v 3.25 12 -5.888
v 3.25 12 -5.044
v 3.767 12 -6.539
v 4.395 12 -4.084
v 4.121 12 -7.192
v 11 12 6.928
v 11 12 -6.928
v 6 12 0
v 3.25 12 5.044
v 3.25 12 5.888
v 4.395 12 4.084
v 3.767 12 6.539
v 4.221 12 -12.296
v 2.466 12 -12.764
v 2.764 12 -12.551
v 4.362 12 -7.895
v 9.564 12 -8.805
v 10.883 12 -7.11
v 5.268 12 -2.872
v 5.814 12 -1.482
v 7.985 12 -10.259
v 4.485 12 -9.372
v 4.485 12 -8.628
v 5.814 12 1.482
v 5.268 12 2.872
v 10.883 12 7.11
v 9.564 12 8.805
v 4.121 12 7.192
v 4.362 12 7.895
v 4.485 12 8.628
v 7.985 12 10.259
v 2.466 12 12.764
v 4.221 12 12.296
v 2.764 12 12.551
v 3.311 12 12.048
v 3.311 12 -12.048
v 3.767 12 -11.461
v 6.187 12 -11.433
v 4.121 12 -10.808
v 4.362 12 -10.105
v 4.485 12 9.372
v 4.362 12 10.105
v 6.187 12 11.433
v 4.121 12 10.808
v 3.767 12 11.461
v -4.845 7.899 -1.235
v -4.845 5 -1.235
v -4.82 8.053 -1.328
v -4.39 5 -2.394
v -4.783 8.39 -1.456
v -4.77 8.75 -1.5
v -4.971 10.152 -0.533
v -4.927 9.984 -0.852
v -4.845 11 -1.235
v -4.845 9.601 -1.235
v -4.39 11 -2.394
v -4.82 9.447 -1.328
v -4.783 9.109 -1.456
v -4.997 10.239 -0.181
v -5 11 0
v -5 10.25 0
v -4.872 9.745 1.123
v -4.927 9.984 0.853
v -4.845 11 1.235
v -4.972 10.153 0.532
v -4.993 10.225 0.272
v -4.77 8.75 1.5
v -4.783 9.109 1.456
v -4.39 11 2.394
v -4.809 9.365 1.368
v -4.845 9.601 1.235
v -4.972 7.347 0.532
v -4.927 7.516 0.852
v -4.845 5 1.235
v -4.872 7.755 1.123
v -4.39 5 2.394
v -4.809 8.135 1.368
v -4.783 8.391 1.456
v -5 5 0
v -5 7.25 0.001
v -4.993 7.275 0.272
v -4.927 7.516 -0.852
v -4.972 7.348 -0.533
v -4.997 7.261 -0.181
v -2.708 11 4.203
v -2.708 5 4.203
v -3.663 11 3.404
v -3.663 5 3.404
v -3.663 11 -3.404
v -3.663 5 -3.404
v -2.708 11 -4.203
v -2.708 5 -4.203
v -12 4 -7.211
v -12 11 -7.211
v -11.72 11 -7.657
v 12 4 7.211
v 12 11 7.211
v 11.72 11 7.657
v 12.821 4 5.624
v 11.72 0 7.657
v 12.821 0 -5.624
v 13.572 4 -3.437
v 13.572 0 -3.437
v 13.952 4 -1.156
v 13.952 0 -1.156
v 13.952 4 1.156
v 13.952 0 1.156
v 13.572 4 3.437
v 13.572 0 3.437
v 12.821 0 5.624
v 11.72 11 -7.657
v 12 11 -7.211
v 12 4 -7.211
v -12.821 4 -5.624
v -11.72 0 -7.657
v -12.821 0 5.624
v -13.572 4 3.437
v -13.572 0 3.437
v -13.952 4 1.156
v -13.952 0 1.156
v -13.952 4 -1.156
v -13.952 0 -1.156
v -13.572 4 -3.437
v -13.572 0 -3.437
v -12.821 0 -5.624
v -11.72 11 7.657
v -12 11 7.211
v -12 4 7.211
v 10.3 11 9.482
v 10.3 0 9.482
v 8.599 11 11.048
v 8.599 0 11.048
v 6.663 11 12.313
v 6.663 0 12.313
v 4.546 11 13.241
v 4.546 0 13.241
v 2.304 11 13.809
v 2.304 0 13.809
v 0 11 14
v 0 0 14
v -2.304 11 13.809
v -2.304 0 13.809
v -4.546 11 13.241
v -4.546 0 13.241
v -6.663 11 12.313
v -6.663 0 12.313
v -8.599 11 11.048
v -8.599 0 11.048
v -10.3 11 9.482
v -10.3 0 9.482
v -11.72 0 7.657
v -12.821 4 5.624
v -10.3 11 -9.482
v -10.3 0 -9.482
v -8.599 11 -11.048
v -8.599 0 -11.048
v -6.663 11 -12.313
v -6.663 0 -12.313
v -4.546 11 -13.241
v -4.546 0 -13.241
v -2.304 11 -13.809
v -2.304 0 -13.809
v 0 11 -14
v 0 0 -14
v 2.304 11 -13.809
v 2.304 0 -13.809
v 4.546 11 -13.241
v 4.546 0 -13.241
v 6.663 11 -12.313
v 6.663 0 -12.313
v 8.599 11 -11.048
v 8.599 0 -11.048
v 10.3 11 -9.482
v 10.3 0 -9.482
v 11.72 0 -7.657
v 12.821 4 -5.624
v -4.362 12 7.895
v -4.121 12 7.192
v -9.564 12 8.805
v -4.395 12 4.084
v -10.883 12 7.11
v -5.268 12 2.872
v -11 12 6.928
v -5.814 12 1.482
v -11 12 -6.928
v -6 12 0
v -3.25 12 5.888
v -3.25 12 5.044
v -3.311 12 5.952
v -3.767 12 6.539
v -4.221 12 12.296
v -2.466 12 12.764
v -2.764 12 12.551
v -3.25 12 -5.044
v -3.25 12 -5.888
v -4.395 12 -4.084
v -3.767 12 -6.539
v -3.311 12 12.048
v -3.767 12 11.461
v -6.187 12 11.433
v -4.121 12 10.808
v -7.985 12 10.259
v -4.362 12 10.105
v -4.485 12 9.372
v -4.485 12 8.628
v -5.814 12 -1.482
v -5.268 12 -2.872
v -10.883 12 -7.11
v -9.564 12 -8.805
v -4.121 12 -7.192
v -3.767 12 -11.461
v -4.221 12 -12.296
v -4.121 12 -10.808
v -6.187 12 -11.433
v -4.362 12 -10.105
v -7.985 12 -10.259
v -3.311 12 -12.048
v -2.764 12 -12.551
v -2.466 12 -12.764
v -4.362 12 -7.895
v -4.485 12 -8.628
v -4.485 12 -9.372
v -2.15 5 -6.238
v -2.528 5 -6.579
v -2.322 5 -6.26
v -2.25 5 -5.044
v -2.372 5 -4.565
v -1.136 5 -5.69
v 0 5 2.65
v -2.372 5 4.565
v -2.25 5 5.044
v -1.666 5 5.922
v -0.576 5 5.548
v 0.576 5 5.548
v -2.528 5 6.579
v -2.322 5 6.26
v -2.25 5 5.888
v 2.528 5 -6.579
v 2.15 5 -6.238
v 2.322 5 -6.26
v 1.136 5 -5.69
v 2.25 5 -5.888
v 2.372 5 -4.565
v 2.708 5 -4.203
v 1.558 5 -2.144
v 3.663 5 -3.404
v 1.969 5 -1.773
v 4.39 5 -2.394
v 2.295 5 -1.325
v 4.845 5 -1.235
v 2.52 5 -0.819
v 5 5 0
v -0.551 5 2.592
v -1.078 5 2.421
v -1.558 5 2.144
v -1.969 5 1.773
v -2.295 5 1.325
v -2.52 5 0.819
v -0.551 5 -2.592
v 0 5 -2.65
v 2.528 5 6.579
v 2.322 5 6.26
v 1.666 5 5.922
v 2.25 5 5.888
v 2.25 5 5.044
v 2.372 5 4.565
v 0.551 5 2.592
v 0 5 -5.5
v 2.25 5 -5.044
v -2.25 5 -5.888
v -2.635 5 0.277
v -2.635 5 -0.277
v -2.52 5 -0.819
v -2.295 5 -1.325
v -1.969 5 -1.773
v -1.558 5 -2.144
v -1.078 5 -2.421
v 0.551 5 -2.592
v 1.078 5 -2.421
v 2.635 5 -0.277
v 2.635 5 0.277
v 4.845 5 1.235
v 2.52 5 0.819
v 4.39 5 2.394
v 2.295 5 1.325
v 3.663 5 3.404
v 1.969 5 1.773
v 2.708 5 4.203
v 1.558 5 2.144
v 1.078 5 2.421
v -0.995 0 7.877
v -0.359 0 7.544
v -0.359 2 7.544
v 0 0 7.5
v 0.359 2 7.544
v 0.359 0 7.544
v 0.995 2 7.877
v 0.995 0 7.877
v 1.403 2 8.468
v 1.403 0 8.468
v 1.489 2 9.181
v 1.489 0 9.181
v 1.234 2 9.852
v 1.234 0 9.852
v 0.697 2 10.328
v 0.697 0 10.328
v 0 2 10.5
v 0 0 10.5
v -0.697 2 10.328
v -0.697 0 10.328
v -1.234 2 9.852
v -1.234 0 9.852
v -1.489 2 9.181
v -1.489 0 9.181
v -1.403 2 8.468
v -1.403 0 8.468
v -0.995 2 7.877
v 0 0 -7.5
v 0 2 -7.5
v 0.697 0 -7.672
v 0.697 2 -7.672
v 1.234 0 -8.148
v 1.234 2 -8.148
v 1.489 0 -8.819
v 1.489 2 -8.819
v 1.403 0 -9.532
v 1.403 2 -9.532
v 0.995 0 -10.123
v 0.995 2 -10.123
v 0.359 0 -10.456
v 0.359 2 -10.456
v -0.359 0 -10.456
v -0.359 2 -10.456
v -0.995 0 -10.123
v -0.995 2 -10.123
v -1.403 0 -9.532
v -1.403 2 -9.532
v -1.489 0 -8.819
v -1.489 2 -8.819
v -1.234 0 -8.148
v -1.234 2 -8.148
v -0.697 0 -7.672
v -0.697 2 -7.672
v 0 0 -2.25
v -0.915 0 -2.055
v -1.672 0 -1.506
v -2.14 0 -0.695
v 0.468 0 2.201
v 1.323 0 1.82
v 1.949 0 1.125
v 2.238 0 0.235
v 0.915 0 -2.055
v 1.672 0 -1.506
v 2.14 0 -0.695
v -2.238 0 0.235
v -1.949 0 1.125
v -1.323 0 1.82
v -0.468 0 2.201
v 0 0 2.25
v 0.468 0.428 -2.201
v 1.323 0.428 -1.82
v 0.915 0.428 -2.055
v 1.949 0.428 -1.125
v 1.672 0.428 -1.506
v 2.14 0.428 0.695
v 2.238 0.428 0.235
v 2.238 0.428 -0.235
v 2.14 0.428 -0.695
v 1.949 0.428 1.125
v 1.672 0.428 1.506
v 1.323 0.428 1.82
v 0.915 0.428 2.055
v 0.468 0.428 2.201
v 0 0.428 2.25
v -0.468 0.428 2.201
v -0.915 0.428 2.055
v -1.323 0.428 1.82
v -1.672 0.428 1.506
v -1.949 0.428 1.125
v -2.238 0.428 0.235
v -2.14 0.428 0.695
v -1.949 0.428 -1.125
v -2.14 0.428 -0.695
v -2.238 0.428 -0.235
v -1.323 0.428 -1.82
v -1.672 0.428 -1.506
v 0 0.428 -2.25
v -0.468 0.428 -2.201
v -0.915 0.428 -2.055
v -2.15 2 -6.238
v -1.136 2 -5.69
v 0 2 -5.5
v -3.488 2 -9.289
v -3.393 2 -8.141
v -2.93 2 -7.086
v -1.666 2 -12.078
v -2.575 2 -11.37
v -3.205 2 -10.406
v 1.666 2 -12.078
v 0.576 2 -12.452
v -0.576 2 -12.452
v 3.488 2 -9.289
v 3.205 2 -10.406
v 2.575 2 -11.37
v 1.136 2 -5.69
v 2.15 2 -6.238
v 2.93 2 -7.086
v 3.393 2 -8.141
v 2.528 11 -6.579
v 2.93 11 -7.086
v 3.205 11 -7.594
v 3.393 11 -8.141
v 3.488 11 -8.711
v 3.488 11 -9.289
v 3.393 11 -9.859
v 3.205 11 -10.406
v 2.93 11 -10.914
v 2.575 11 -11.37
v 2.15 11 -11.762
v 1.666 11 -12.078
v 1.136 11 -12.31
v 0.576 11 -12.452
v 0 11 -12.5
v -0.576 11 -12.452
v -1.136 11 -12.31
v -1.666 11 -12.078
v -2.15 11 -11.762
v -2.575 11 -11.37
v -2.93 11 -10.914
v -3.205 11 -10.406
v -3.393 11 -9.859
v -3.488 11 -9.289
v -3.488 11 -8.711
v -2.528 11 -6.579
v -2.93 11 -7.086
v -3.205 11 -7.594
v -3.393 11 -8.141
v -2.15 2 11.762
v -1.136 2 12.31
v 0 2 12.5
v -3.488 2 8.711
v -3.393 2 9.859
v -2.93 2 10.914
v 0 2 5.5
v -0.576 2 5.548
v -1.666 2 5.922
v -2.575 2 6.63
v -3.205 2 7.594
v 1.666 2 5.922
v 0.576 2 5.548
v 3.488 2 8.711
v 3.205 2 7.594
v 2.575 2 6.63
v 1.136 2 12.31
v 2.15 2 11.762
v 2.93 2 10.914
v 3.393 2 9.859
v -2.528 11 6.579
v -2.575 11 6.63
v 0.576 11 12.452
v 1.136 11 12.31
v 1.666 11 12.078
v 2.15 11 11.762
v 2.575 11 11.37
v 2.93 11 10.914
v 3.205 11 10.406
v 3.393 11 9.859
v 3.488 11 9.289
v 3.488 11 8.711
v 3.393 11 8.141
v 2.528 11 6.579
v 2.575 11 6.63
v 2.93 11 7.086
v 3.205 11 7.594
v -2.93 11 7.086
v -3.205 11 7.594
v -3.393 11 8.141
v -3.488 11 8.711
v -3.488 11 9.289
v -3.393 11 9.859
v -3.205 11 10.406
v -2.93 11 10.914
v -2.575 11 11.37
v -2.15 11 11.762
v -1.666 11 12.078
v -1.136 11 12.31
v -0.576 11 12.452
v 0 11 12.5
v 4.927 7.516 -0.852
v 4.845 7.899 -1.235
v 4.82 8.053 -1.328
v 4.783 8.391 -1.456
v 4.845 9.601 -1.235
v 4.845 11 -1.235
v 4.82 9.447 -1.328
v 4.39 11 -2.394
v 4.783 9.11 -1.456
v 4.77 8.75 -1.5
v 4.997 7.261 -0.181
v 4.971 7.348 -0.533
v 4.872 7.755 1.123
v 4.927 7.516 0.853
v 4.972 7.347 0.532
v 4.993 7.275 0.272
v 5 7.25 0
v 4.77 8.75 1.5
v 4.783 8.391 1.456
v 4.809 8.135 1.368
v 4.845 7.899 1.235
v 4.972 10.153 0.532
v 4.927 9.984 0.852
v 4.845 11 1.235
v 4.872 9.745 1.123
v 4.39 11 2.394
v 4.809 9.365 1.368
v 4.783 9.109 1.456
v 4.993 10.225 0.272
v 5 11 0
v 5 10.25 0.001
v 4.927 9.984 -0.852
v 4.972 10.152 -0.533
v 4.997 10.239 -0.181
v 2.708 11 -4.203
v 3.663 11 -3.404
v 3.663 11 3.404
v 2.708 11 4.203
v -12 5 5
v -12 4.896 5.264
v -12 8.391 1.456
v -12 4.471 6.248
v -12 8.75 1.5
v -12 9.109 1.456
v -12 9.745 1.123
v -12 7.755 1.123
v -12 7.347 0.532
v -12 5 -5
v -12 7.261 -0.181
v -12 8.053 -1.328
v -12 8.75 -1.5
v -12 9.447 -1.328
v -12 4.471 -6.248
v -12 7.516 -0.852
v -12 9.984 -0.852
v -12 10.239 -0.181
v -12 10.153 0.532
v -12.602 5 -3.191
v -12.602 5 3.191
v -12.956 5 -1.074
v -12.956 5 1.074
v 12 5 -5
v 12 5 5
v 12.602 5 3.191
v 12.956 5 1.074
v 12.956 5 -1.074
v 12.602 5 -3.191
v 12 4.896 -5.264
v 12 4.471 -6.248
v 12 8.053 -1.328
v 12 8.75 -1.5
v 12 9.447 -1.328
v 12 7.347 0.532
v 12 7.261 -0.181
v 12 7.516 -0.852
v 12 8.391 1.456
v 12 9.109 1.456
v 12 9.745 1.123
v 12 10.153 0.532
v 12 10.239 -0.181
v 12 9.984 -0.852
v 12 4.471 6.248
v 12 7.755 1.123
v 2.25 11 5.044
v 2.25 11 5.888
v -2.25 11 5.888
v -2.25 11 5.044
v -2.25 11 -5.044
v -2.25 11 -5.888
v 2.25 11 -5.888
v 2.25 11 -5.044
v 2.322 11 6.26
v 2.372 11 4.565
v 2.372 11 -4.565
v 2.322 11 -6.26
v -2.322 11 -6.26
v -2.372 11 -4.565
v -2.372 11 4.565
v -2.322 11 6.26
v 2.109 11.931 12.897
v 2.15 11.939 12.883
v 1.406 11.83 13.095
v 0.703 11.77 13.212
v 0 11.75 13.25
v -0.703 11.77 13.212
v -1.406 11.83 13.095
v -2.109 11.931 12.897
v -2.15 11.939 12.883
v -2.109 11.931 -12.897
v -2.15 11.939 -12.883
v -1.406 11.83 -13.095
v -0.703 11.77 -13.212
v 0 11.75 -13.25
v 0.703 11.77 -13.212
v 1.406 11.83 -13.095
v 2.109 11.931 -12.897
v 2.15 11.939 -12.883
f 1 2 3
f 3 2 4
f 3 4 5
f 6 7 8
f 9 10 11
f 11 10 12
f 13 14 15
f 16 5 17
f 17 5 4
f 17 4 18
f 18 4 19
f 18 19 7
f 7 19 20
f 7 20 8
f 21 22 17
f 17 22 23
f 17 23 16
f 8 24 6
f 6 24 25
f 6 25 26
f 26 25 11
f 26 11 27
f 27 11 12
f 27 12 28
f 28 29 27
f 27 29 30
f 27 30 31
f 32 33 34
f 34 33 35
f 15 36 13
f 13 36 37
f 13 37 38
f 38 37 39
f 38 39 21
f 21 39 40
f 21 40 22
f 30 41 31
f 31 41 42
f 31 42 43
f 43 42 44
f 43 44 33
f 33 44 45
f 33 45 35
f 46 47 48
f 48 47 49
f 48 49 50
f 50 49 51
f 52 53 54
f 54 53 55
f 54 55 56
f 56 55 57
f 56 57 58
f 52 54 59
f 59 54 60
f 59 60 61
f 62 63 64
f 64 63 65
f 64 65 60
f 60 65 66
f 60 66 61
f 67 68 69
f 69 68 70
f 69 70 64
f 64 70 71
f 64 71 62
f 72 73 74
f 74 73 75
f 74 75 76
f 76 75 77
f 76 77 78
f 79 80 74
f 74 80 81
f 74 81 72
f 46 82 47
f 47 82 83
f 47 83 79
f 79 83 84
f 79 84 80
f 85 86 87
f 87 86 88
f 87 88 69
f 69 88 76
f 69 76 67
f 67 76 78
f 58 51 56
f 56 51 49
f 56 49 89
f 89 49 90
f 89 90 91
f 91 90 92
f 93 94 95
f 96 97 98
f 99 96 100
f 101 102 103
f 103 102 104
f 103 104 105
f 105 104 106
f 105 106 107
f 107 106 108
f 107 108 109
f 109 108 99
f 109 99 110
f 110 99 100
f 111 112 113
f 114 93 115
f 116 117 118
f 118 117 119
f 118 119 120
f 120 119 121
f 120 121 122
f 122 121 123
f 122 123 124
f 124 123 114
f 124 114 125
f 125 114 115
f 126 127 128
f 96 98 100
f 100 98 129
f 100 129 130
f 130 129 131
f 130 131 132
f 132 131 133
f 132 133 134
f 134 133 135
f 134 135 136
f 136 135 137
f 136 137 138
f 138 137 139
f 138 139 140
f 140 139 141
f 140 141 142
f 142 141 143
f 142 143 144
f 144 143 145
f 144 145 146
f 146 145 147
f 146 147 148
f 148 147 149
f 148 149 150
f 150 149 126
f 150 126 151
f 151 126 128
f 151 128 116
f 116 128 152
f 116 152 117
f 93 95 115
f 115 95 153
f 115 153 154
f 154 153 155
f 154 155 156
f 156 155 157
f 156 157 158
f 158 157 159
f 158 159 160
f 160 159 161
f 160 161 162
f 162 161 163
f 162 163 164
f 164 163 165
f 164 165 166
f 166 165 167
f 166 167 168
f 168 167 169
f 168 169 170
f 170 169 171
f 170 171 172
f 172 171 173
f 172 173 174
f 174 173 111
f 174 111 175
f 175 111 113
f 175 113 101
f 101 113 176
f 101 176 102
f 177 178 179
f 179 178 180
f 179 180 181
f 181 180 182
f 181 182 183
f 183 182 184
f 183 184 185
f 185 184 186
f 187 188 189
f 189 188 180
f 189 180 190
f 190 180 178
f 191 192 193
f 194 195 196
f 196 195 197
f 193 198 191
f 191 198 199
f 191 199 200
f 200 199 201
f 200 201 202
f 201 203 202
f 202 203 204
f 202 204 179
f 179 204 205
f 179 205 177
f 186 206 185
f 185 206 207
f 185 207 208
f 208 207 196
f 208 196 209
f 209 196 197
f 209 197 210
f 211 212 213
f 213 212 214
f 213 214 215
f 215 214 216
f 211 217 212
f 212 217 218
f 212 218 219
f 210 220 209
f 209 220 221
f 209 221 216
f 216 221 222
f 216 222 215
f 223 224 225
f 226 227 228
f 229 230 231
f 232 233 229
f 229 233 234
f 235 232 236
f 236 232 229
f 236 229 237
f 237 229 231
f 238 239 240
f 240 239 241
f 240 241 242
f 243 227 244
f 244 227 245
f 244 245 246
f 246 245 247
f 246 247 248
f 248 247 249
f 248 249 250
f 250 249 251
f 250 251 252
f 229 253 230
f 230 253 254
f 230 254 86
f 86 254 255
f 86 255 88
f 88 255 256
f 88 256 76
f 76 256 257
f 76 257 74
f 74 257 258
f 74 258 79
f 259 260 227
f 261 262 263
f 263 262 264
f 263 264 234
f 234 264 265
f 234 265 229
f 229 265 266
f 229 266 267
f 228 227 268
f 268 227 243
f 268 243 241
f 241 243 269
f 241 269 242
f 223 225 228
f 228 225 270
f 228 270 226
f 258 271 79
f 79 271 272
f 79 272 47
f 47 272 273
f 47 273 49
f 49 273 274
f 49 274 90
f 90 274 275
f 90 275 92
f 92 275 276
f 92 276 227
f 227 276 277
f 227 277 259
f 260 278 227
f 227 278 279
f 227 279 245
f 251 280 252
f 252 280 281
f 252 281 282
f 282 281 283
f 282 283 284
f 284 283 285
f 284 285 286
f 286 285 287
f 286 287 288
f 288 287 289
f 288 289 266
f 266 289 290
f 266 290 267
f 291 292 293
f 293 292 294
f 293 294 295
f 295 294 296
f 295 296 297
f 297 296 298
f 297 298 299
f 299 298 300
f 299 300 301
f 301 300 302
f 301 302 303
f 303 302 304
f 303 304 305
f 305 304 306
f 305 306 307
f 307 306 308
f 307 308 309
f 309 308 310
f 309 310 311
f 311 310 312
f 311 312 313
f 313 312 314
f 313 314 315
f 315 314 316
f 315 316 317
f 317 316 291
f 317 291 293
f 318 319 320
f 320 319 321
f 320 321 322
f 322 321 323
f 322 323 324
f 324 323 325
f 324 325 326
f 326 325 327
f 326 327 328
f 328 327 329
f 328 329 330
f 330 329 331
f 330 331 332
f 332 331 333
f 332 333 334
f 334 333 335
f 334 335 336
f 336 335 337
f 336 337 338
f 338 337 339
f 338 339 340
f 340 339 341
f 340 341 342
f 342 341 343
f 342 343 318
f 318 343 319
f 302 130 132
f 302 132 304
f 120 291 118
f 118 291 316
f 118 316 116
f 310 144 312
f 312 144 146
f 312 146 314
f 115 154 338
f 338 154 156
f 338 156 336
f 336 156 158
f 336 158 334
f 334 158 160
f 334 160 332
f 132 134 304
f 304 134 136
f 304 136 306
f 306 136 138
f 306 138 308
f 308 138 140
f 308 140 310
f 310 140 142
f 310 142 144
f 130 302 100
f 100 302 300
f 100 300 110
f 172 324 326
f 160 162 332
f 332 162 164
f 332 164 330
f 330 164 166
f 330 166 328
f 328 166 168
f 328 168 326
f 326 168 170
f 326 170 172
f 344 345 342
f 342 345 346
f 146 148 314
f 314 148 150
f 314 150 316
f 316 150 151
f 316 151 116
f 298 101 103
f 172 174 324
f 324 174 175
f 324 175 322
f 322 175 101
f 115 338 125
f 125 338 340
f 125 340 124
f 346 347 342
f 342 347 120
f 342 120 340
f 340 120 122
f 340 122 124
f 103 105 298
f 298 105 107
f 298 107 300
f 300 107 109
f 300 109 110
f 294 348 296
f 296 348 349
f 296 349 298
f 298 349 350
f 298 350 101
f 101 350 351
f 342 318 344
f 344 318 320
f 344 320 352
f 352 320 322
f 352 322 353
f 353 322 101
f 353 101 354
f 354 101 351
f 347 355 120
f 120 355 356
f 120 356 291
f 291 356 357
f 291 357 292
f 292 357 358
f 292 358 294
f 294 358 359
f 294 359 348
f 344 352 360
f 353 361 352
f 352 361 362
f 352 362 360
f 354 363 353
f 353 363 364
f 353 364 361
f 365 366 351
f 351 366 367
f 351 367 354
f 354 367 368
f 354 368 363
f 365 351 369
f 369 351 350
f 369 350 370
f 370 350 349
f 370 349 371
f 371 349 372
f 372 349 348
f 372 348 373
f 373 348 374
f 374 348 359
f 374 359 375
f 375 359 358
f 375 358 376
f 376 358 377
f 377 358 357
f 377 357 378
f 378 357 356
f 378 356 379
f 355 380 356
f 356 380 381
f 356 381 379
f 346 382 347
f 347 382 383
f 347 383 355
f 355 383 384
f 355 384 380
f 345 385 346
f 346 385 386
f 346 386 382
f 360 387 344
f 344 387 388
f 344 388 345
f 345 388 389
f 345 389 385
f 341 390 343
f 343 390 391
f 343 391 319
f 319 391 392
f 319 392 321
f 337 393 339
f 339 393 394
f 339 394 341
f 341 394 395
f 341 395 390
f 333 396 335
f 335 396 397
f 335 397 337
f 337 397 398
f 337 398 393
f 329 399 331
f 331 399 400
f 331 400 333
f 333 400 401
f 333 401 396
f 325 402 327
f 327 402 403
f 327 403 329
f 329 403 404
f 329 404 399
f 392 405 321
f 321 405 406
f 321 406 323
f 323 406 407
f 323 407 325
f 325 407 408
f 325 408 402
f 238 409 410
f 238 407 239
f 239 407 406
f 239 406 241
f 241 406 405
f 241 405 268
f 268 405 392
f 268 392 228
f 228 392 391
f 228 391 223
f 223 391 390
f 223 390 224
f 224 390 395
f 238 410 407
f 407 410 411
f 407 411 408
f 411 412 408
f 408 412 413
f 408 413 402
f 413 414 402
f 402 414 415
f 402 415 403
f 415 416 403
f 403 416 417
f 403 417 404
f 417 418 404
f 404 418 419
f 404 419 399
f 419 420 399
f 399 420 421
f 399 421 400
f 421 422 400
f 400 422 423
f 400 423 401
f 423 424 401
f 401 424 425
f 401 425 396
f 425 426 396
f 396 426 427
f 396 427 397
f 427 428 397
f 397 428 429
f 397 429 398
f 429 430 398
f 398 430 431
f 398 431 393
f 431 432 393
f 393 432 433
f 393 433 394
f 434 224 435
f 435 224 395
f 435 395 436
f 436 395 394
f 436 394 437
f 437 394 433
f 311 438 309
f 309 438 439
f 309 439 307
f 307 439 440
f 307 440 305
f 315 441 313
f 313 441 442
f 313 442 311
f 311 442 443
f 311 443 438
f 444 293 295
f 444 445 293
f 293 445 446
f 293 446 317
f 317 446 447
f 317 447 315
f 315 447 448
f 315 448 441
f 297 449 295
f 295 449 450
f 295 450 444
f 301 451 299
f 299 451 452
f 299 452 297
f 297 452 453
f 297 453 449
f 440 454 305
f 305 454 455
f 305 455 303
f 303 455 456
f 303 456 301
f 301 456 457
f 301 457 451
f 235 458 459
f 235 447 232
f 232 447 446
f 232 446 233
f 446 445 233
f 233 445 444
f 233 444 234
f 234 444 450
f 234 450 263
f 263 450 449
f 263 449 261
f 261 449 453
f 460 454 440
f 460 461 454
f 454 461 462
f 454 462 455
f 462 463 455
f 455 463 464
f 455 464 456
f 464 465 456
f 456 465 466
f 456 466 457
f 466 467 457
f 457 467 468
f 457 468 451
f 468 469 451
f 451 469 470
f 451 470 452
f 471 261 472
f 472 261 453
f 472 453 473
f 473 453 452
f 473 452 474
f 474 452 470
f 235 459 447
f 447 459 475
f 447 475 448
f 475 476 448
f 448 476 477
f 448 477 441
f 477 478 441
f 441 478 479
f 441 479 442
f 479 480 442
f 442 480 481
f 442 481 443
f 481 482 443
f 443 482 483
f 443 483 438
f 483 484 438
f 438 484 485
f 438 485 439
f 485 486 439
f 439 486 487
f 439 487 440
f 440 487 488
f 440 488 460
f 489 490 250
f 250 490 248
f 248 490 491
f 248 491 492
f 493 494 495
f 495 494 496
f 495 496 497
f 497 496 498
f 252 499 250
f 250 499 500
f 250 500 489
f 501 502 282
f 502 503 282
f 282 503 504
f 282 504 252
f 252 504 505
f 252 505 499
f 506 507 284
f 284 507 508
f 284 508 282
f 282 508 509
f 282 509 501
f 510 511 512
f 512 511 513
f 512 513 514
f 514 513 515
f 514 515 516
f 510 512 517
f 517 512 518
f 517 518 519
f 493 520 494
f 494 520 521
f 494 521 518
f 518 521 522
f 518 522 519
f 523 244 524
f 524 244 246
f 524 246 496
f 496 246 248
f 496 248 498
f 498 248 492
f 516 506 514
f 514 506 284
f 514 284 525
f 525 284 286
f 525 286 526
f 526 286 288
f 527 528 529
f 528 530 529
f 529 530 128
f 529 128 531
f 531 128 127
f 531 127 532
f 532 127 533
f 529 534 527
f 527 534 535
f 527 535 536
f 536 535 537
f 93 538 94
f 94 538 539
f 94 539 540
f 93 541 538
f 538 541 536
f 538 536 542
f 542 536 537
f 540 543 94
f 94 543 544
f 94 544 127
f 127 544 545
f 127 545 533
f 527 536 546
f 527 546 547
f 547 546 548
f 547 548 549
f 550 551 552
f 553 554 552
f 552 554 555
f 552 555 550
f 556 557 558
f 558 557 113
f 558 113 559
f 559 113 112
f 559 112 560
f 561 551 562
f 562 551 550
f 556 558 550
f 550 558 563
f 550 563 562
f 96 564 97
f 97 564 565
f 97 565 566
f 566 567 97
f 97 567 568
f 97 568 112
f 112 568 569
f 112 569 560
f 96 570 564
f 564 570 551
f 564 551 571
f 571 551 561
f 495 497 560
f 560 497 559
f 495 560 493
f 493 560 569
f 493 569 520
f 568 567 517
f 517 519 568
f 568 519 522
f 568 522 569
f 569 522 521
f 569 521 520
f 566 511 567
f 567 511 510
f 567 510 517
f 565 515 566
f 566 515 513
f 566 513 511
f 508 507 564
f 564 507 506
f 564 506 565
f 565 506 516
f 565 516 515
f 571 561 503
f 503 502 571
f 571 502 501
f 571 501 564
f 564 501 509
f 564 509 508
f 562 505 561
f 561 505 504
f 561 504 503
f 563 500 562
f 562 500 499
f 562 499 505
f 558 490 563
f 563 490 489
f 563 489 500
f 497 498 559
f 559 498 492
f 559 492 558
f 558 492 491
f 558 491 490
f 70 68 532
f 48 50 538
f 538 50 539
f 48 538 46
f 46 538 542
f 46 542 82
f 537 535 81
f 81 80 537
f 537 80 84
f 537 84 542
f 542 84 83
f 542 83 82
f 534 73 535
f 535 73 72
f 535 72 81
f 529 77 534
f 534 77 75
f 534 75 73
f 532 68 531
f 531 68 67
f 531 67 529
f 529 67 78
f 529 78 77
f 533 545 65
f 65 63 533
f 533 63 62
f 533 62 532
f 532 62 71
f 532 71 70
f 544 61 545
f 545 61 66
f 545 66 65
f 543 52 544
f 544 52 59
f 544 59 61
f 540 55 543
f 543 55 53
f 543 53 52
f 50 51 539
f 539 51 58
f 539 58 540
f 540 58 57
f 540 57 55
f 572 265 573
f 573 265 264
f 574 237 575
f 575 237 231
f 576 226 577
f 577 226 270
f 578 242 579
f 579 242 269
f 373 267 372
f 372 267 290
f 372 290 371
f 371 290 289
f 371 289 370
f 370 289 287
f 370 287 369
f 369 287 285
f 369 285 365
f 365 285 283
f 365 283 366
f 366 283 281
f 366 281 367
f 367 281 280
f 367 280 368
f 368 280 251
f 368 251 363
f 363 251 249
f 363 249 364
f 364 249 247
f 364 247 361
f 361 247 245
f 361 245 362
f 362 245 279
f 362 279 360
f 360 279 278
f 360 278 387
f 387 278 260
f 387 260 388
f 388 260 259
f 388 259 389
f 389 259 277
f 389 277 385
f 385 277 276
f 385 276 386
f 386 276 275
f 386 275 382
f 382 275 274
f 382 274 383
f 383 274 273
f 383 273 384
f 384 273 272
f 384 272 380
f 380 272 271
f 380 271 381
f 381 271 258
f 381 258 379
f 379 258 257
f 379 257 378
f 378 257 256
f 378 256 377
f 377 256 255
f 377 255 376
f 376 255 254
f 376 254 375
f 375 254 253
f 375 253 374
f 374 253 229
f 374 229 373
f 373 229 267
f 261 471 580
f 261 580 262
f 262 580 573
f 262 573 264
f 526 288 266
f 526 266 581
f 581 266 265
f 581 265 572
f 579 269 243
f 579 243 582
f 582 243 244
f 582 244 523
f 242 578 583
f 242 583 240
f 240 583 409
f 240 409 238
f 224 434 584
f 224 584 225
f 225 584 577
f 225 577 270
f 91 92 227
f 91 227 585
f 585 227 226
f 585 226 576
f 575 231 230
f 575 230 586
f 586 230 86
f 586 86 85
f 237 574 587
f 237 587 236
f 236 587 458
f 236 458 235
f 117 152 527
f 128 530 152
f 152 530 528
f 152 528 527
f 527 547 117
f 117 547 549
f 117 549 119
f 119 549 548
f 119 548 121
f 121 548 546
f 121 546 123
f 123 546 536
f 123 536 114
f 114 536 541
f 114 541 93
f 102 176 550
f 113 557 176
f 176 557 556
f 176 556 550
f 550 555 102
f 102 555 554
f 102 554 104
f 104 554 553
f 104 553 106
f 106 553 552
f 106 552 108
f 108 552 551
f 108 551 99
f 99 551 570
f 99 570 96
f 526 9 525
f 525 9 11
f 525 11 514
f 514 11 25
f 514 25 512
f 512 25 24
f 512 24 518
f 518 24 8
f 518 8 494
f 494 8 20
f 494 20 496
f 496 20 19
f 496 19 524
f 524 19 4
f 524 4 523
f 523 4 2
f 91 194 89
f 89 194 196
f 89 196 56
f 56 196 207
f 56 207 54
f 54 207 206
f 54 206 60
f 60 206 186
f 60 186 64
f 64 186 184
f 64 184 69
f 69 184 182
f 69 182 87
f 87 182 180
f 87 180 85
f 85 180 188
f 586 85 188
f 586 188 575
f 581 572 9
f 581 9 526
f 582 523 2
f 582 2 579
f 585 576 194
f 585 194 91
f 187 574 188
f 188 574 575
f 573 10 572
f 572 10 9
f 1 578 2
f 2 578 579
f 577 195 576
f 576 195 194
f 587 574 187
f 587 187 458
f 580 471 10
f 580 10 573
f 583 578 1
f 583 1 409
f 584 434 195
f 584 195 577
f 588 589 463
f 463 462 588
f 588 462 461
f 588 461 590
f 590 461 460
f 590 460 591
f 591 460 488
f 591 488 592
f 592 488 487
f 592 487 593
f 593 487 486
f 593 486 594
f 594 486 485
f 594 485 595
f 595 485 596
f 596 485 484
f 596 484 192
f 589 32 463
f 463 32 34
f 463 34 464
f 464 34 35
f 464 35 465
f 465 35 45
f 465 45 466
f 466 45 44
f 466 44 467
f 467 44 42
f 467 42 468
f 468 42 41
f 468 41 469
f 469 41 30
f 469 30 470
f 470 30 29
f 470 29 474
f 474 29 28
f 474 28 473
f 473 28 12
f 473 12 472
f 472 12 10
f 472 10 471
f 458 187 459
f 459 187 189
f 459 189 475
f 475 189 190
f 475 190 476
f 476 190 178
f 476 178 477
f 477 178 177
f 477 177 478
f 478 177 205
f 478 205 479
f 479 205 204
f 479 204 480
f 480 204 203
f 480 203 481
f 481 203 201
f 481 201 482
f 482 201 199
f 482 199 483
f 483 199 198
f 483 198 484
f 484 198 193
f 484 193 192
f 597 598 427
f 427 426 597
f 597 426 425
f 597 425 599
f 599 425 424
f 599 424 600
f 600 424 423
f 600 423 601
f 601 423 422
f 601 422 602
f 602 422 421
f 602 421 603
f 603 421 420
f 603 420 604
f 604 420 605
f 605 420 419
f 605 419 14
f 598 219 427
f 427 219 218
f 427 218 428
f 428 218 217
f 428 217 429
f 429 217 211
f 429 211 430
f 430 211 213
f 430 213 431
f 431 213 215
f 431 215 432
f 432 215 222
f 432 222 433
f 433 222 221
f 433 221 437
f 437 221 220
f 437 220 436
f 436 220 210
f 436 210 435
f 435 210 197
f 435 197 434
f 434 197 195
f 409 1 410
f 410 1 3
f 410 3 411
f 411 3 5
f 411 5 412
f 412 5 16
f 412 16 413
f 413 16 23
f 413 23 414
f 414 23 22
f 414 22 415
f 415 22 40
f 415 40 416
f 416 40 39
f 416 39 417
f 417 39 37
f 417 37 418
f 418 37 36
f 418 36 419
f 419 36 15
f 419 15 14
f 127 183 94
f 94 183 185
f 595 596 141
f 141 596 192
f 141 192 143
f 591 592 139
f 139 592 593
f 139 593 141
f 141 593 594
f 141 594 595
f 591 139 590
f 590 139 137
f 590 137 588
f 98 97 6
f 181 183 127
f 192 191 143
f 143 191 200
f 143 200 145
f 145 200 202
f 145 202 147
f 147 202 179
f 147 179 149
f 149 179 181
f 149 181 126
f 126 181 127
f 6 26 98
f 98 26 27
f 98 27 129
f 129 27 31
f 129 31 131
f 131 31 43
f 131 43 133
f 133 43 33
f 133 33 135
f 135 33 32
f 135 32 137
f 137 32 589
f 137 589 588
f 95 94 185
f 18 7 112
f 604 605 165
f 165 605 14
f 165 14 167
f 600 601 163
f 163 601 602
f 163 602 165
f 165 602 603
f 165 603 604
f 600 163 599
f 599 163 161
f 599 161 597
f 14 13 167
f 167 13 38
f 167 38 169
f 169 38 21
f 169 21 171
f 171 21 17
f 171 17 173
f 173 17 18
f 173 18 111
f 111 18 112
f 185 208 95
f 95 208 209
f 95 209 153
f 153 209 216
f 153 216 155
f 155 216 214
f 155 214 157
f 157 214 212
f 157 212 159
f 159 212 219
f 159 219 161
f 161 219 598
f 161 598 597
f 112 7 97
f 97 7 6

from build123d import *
from build123d.topology import SkipClean

# Parameters (mm, degrees)
SKETCH1_R           = 14
SKETCH1_R_2         = 2.25
BOSS_EXTRUDE1_DEPTH = 5
SKETCH2_R           = 1.5
CUT_EXTRUDE1_DEPTH  = 21.420577857
SKETCH4_R           = 3.5
CUT_EXTRUDE2_DEPTH  = 3
CIRPATTERN1_COUNT   = 2
SKETCH5_R           = 14
SKETCH5_R_2         = 5
BOSS_EXTRUDE2_DEPTH = 7
SKETCH6_R           = 3.5
CUT_EXTRUDE3_DEPTH  = 22
SKETCH9_OUTSIDE_W   = 38.276
SKETCH9_OUTSIDE_H   = 38.276
SKETCH9_OUTSIDE_W_2 = 24
SKETCH9_OUTSIDE_H_2 = 30
CUT_EXTRUDE5_DEPTH  = 7
SKETCH10_R          = 1.5
CUT_EXTRUDE6_DEPTH  = 32.874754901
SKETCH12_W          = 4.5
SKETCH12_H          = 18
CUT_EXTRUDE7_DEPTH  = 7
CHAMFER2_SIZE       = 0.4
CHAMFER2_SIZE2      = 4.572020921
FILLET2_R           = 1
CHAMFER3_SIZE       = 1


# Some blends are built 0.0001 mm under size
with BuildPart() as part:
    # Sketch1 → Boss-Extrude1 (new body)
    with BuildSketch(Plane(origin=(0, 0, 0), x_dir=(1, 0, 0), z_dir=(0, 1, 0))):
        with Locations(Location((0, 0, 0), (0, 0, 270))):
            Circle(SKETCH1_R)
        with Locations(Location((0, 0, 0), (0, 0, 270))):
            Circle(SKETCH1_R_2, mode=Mode.SUBTRACT)
    extrude(amount=BOSS_EXTRUDE1_DEPTH)

    # Sketch2 → Cut-Extrude1 (cut, through all)
    with BuildSketch(Plane(origin=(0, 5, 0), x_dir=(1, 0, 0), z_dir=(0, 1, 0))):
        with Locations(Location((0, 9, 0), (0, 0, 270))):
            Circle(SKETCH2_R)
    cut_extrude1 = extrude(amount=-CUT_EXTRUDE1_DEPTH, mode=Mode.SUBTRACT)

    # Sketch4 → Cut-Extrude2 (cut)
    with BuildSketch(Plane(origin=(0, 5, 0), x_dir=(1, 0, 0), z_dir=(0, 1, 0))):
        with Locations(Location((0, 9, 0), (0, 0, 270))):
            Circle(SKETCH4_R)
    cut_extrude2 = extrude(amount=-CUT_EXTRUDE2_DEPTH, mode=Mode.SUBTRACT)

    # CirPattern1: Cut-Extrude1, Cut-Extrude2 ×2 about axis
    cirpattern1_axis = Axis((0, 0, 0), (0, 1, 0))
    add([cut_extrude1.rotate(cirpattern1_axis, i * 360 / CIRPATTERN1_COUNT) for i in range(1, CIRPATTERN1_COUNT)], mode=Mode.SUBTRACT)
    add([cut_extrude2.rotate(cirpattern1_axis, i * 360 / CIRPATTERN1_COUNT) for i in range(1, CIRPATTERN1_COUNT)], mode=Mode.SUBTRACT)

    # Sketch5 → Boss-Extrude2 (add)
    with BuildSketch(Plane(origin=(0, 5, 0), x_dir=(1, 0, 0), z_dir=(0, 1, 0))):
        with Locations(Location((0, 0, 0), (0, 0, 270))):
            Circle(SKETCH5_R)
        with Locations(Location((0, 0, 0), (0, 0, 270))):
            Circle(SKETCH5_R_2, mode=Mode.SUBTRACT)
    extrude(amount=BOSS_EXTRUDE2_DEPTH)

    # Sketch6 → Cut-Extrude3 (cut, through all)
    with SkipClean():  # the faces are left unmerged after this step: merging them gives an invalid solid
        with BuildSketch(Plane(origin=(0, 5, 0), x_dir=(1, 0, 0), z_dir=(0, 1, 0))):
            with Locations(Location((0, 9, 0), (0, 0, 270))):
                Circle(SKETCH6_R)
            with Locations(Location((0, -9, 0), (0, 0, 270))):
                Circle(SKETCH6_R)
        extrude(amount=CUT_EXTRUDE3_DEPTH, mode=Mode.SUBTRACT)

    # Sketch9 outside → Cut-Extrude5 (cut)
    with SkipClean():  # the faces are left unmerged after this step: merging them gives an invalid solid
        with BuildSketch(Plane(origin=(0, 12, 0), x_dir=(1, 0, 0), z_dir=(0, 1, 0))):
            Rectangle(SKETCH9_OUTSIDE_W, SKETCH9_OUTSIDE_H)
            Rectangle(SKETCH9_OUTSIDE_W_2, SKETCH9_OUTSIDE_H_2, mode=Mode.SUBTRACT)
        extrude(amount=-CUT_EXTRUDE5_DEPTH, mode=Mode.SUBTRACT)

    # Sketch10 → Cut-Extrude6 (cut, through all)
    with SkipClean():  # the faces are left unmerged after this step: merging them gives an invalid solid
        with BuildSketch(Plane(origin=(12, 0, 0), x_dir=(0, 0, -1), z_dir=(1, 0, 0))):
            with Locations((0, 8.75)):
                Circle(SKETCH10_R)
        extrude(amount=-CUT_EXTRUDE6_DEPTH, mode=Mode.SUBTRACT)

    # Sketch12 → Cut-Extrude7 (cut)
    with SkipClean():  # the faces are left unmerged after this step: merging them gives an invalid solid
        with BuildSketch(Plane(origin=(0, 12, 0), x_dir=(1, 0, 0), z_dir=(0, 1, 0))):
            Rectangle(SKETCH12_W, SKETCH12_H)
        extrude(amount=-CUT_EXTRUDE7_DEPTH, mode=Mode.SUBTRACT)
    add(part.part.scale(1), mode=Mode.REPLACE)  # the faces are merged on a copy

    # Chamfer2
    chamfer2_edges = [part.edges().sort_by_distance(p)[0] for p in [
        (1.59099026, 5, 1.590990255),
    ]]
    chamfer2_side = [part.faces().sort_by_distance(p)[0] for p in [
        (0, 5, 3.259288519),
    ]]
    chamfer(chamfer2_edges, length=CHAMFER2_SIZE, length2=CHAMFER2_SIZE2, reference=chamfer2_side[0])

    # Fillet2
    # the kernel refuses this fillet: 1 mm, written as the material it takes off along each edge
    with BuildSketch(Plane(origin=(2.25, 13.446043689, -4.465142775), x_dir=(0, 0, -1), z_dir=(0, -1, 0)), Plane(origin=(-2.25, 13.446043689, 4.465142775), x_dir=(0, 0, 1), z_dir=(0, -1, 0))) as fillet2_piece_1:
        with BuildLine():
            CenterArc((0.578417476, 1), FILLET2_R, 212.797168296, 57.202831704)
            ThreePointArc((-0.262175899, 0.458333333), (-0.125033492, 0.232629939), (0, 0))
            Line((0, 0), (0.578417476, 0))
        make_face()
    extrude(amount=8.446043689, mode=Mode.SUBTRACT)
    with BuildSketch(Plane(origin=(2.25, 13.446043689, 4.465142775), x_dir=(0.8680218565985627, 0, -0.49652598770576395), z_dir=(0, -1, 0))) as fillet2_piece_2:
        with BuildLine():
            CenterArc((0.580822548, 0.998604999), FILLET2_R, 209.770426123, 57.202831704)
            Line((-0.287199308, 0.502079011), (0, 0))
            ThreePointArc((0, 0), (0.264010249, 0.006975006), (0.528020498, 0))
        make_face()
    extrude(amount=8.446043689, mode=Mode.SUBTRACT)
    with BuildSketch(Plane(origin=(-2.25, 13.446043689, -4.465142775), x_dir=(0, 0, -1), z_dir=(0, -1, 0))) as fillet2_piece_3:
        with BuildLine():
            CenterArc((0.578417476, -1), FILLET2_R, 90, 57.202831704)
            ThreePointArc((-0.262175899, -0.458333333), (-0.125033492, -0.232629939), (0, 0))
            Line((0, 0), (0.578417476, 0))
        make_face()
    extrude(amount=8.446043689, mode=Mode.SUBTRACT)
    with BuildSketch(Plane(origin=(-2.25, 13.07880894, -6.319048676), x_dir=(0, 0, 1), z_dir=(0, -1, 0))) as fillet2_piece_4:
        with BuildLine():
            CenterArc((0.431523576, 1), FILLET2_R, 226.238257307, 43.761742693)
            ThreePointArc((-0.260137513, 0.277777778), (-0.126290486, 0.14242722), (0, 0))
            Line((0, 0), (0.431523576, 0))
        make_face()
    extrude(amount=8.07880894, mode=Mode.SUBTRACT)
    with BuildSketch(Plane(origin=(-2.25, 13.07880894, 6.319048676), x_dir=(-0.7299030964550425, 0, 0.683550634397585), z_dir=(0, -1, 0)), Plane(origin=(2.25, 13.07880894, -6.319048676), x_dir=(0.7299030964550413, 0, -0.6835506343975865), z_dir=(0, -1, 0))) as fillet2_piece_5:
        with BuildLine():
            CenterArc((0.434934882, 0.998521029), FILLET2_R, 223.121729096, 43.761742693)
            Line((-0.294968214, 0.314970394), (0, 0))
            ThreePointArc((0, 0), (0.190284011, 0.0051764), (0.380568022, 0))
        make_face()
    extrude(amount=8.07880894, mode=Mode.SUBTRACT)
    with BuildSketch(Plane(origin=(2.25, 13.07880894, 6.319048676), x_dir=(0.7299030964550418, 0, 0.6835506343975857), z_dir=(0, -1, 0))) as fillet2_piece_6:
        with BuildLine():
            CenterArc((0.434934882, -0.998521029), FILLET2_R, 93.116528211, 43.761742693)
            Line((-0.294968214, -0.314970394), (0, 0))
            ThreePointArc((0, 0), (0.190284011, -0.0051764), (0.380568022, 0))
        make_face()
    extrude(amount=8.07880894, mode=Mode.SUBTRACT)

    # Chamfer3
    chamfer3_edges = [part.edges().sort_by_distance(p)[0] for p in [
        (-2.372028854, 12, -4.564846697),
        (5, 12, 0),
        (2.372028854, 12, -4.564846697),
        (2.25, 12, -5.465542675),
        (2.322039273, 12, -6.260203097),
        (0, 12, -12.5),
        (-2.322039273, 12, -6.260203097),
        (-2.25, 12, -5.465542675),
        (-5, 12, 0),
        (-2.372028854, 12, 4.564846697),
        (-2.25, 12, 5.465542675),
        (-2.322039273, 12, 6.260203097),
        (-3.218916614, 12, 10.374254646),
        (3.218916614, 12, 10.374254646),
        (2.322039273, 12, 6.260203097),
        (2.25, 12, 5.465542675),
        (2.372028854, 12, 4.564846697),
    ]]
    chamfer(chamfer3_edges, length=CHAMFER3_SIZE - 0.0001)  # a hair under: the kernel refuses the full size
    chamfer3_2_edges = [part.edges().sort_by_distance(p)[0] for p in [
        (-14, 5, 0),
    ]]
    chamfer(chamfer3_2_edges, length=CHAMFER3_SIZE)
    chamfer3_3_edges = [part.edges().sort_by_distance(p)[0] for p in [
        (14, 5, 0),
    ]]
    chamfer(chamfer3_3_edges, length=CHAMFER3_SIZE)
    chamfer3_4_edges = [part.edges().sort_by_distance(p)[0] for p in [
        (-12, 12, 0),
    ]]
    chamfer(chamfer3_4_edges, length=CHAMFER3_SIZE)
    chamfer3_5_edges = [part.edges().sort_by_distance(p)[0] for p in [
        (12, 12, 0),
    ]]
    chamfer(chamfer3_5_edges, length=CHAMFER3_SIZE)
    # the kernel refuses this chamfer: 1 mm, written as the material it takes off along each edge
    with BuildSketch(Plane(origin=(0, 12, 0), x_dir=(-0.8854986236945603, 0, 0.46464199921556715), z_dir=(-0.46464199921556715, 0, -0.8854986236945603))) as chamfer3_6_piece_1:
        with BuildLine():
            Line((14.028284271, -1.028284271), (12.971715729, 0.028284271))
            Line((12.971715729, 0.028284271), (12.971715729, 0.048284271))
            ThreePointArc((12.971715729, 0.048284271), (13.485857864, 0.02), (14, 0.02))
            Line((14, 0.02), (14.02, 0))
            ThreePointArc((14.02, 0), (14.02, -0.514142136), (14.048284271, -1.028284271))
            Line((14.048284271, -1.028284271), (14.028284271, -1.028284271))
        make_face()
    revolve(axis=Axis((0, 12, 0), (0, 1, 0)), revolution_arc=62.312944684, mode=Mode.SUBTRACT)
    with BuildSketch(Plane(origin=(0, 12, 0), x_dir=(0, 0, 1), z_dir=(-1, 0, 0))) as chamfer3_6_piece_2:
        with BuildLine():
            Line((14.028284271, -1.028284271), (12.971715729, 0.028284271))
            Line((12.971715729, 0.028284271), (12.971715729, 0.048284271))
            ThreePointArc((12.971715729, 0.048284271), (13.485857864, 0.02), (14, 0.02))
            Line((14, 0.02), (14.02, 0))
            ThreePointArc((14.02, 0), (14.02, -0.514142136), (14.048284271, -1.028284271))
            Line((14.048284271, -1.028284271), (14.028284271, -1.028284271))
        make_face()
    revolve(axis=Axis((0, 12, 0), (0, 1, 0)), revolution_arc=62.312944684, mode=Mode.SUBTRACT)
    # the kernel refuses this chamfer: 1 mm, written as the material it takes off along each edge
    with BuildSketch(Plane(origin=(0, 12, 0), x_dir=(0.8855326835196512, 0, -0.46457708339788484), z_dir=(0.46457708339788484, 0, 0.8855326835196512))) as chamfer3_7_piece_1:
        with BuildLine():
            Line((14.028284271, -1.028284271), (12.971715729, 0.028284271))
            Line((12.971715729, 0.028284271), (12.971715729, 0.048284271))
            ThreePointArc((12.971715729, 0.048284271), (13.485857864, 0.02), (14, 0.02))
            Line((14, 0.02), (14.02, 0))
            ThreePointArc((14.02, 0), (14.02, -0.514142136), (14.048284271, -1.028284271))
            Line((14.048284271, -1.028284271), (14.028284271, -1.028284271))
        make_face()
    revolve(axis=Axis((0, 12, 0), (0, 1, 0)), revolution_arc=124.634289903, mode=Mode.SUBTRACT)


solid = part.part
